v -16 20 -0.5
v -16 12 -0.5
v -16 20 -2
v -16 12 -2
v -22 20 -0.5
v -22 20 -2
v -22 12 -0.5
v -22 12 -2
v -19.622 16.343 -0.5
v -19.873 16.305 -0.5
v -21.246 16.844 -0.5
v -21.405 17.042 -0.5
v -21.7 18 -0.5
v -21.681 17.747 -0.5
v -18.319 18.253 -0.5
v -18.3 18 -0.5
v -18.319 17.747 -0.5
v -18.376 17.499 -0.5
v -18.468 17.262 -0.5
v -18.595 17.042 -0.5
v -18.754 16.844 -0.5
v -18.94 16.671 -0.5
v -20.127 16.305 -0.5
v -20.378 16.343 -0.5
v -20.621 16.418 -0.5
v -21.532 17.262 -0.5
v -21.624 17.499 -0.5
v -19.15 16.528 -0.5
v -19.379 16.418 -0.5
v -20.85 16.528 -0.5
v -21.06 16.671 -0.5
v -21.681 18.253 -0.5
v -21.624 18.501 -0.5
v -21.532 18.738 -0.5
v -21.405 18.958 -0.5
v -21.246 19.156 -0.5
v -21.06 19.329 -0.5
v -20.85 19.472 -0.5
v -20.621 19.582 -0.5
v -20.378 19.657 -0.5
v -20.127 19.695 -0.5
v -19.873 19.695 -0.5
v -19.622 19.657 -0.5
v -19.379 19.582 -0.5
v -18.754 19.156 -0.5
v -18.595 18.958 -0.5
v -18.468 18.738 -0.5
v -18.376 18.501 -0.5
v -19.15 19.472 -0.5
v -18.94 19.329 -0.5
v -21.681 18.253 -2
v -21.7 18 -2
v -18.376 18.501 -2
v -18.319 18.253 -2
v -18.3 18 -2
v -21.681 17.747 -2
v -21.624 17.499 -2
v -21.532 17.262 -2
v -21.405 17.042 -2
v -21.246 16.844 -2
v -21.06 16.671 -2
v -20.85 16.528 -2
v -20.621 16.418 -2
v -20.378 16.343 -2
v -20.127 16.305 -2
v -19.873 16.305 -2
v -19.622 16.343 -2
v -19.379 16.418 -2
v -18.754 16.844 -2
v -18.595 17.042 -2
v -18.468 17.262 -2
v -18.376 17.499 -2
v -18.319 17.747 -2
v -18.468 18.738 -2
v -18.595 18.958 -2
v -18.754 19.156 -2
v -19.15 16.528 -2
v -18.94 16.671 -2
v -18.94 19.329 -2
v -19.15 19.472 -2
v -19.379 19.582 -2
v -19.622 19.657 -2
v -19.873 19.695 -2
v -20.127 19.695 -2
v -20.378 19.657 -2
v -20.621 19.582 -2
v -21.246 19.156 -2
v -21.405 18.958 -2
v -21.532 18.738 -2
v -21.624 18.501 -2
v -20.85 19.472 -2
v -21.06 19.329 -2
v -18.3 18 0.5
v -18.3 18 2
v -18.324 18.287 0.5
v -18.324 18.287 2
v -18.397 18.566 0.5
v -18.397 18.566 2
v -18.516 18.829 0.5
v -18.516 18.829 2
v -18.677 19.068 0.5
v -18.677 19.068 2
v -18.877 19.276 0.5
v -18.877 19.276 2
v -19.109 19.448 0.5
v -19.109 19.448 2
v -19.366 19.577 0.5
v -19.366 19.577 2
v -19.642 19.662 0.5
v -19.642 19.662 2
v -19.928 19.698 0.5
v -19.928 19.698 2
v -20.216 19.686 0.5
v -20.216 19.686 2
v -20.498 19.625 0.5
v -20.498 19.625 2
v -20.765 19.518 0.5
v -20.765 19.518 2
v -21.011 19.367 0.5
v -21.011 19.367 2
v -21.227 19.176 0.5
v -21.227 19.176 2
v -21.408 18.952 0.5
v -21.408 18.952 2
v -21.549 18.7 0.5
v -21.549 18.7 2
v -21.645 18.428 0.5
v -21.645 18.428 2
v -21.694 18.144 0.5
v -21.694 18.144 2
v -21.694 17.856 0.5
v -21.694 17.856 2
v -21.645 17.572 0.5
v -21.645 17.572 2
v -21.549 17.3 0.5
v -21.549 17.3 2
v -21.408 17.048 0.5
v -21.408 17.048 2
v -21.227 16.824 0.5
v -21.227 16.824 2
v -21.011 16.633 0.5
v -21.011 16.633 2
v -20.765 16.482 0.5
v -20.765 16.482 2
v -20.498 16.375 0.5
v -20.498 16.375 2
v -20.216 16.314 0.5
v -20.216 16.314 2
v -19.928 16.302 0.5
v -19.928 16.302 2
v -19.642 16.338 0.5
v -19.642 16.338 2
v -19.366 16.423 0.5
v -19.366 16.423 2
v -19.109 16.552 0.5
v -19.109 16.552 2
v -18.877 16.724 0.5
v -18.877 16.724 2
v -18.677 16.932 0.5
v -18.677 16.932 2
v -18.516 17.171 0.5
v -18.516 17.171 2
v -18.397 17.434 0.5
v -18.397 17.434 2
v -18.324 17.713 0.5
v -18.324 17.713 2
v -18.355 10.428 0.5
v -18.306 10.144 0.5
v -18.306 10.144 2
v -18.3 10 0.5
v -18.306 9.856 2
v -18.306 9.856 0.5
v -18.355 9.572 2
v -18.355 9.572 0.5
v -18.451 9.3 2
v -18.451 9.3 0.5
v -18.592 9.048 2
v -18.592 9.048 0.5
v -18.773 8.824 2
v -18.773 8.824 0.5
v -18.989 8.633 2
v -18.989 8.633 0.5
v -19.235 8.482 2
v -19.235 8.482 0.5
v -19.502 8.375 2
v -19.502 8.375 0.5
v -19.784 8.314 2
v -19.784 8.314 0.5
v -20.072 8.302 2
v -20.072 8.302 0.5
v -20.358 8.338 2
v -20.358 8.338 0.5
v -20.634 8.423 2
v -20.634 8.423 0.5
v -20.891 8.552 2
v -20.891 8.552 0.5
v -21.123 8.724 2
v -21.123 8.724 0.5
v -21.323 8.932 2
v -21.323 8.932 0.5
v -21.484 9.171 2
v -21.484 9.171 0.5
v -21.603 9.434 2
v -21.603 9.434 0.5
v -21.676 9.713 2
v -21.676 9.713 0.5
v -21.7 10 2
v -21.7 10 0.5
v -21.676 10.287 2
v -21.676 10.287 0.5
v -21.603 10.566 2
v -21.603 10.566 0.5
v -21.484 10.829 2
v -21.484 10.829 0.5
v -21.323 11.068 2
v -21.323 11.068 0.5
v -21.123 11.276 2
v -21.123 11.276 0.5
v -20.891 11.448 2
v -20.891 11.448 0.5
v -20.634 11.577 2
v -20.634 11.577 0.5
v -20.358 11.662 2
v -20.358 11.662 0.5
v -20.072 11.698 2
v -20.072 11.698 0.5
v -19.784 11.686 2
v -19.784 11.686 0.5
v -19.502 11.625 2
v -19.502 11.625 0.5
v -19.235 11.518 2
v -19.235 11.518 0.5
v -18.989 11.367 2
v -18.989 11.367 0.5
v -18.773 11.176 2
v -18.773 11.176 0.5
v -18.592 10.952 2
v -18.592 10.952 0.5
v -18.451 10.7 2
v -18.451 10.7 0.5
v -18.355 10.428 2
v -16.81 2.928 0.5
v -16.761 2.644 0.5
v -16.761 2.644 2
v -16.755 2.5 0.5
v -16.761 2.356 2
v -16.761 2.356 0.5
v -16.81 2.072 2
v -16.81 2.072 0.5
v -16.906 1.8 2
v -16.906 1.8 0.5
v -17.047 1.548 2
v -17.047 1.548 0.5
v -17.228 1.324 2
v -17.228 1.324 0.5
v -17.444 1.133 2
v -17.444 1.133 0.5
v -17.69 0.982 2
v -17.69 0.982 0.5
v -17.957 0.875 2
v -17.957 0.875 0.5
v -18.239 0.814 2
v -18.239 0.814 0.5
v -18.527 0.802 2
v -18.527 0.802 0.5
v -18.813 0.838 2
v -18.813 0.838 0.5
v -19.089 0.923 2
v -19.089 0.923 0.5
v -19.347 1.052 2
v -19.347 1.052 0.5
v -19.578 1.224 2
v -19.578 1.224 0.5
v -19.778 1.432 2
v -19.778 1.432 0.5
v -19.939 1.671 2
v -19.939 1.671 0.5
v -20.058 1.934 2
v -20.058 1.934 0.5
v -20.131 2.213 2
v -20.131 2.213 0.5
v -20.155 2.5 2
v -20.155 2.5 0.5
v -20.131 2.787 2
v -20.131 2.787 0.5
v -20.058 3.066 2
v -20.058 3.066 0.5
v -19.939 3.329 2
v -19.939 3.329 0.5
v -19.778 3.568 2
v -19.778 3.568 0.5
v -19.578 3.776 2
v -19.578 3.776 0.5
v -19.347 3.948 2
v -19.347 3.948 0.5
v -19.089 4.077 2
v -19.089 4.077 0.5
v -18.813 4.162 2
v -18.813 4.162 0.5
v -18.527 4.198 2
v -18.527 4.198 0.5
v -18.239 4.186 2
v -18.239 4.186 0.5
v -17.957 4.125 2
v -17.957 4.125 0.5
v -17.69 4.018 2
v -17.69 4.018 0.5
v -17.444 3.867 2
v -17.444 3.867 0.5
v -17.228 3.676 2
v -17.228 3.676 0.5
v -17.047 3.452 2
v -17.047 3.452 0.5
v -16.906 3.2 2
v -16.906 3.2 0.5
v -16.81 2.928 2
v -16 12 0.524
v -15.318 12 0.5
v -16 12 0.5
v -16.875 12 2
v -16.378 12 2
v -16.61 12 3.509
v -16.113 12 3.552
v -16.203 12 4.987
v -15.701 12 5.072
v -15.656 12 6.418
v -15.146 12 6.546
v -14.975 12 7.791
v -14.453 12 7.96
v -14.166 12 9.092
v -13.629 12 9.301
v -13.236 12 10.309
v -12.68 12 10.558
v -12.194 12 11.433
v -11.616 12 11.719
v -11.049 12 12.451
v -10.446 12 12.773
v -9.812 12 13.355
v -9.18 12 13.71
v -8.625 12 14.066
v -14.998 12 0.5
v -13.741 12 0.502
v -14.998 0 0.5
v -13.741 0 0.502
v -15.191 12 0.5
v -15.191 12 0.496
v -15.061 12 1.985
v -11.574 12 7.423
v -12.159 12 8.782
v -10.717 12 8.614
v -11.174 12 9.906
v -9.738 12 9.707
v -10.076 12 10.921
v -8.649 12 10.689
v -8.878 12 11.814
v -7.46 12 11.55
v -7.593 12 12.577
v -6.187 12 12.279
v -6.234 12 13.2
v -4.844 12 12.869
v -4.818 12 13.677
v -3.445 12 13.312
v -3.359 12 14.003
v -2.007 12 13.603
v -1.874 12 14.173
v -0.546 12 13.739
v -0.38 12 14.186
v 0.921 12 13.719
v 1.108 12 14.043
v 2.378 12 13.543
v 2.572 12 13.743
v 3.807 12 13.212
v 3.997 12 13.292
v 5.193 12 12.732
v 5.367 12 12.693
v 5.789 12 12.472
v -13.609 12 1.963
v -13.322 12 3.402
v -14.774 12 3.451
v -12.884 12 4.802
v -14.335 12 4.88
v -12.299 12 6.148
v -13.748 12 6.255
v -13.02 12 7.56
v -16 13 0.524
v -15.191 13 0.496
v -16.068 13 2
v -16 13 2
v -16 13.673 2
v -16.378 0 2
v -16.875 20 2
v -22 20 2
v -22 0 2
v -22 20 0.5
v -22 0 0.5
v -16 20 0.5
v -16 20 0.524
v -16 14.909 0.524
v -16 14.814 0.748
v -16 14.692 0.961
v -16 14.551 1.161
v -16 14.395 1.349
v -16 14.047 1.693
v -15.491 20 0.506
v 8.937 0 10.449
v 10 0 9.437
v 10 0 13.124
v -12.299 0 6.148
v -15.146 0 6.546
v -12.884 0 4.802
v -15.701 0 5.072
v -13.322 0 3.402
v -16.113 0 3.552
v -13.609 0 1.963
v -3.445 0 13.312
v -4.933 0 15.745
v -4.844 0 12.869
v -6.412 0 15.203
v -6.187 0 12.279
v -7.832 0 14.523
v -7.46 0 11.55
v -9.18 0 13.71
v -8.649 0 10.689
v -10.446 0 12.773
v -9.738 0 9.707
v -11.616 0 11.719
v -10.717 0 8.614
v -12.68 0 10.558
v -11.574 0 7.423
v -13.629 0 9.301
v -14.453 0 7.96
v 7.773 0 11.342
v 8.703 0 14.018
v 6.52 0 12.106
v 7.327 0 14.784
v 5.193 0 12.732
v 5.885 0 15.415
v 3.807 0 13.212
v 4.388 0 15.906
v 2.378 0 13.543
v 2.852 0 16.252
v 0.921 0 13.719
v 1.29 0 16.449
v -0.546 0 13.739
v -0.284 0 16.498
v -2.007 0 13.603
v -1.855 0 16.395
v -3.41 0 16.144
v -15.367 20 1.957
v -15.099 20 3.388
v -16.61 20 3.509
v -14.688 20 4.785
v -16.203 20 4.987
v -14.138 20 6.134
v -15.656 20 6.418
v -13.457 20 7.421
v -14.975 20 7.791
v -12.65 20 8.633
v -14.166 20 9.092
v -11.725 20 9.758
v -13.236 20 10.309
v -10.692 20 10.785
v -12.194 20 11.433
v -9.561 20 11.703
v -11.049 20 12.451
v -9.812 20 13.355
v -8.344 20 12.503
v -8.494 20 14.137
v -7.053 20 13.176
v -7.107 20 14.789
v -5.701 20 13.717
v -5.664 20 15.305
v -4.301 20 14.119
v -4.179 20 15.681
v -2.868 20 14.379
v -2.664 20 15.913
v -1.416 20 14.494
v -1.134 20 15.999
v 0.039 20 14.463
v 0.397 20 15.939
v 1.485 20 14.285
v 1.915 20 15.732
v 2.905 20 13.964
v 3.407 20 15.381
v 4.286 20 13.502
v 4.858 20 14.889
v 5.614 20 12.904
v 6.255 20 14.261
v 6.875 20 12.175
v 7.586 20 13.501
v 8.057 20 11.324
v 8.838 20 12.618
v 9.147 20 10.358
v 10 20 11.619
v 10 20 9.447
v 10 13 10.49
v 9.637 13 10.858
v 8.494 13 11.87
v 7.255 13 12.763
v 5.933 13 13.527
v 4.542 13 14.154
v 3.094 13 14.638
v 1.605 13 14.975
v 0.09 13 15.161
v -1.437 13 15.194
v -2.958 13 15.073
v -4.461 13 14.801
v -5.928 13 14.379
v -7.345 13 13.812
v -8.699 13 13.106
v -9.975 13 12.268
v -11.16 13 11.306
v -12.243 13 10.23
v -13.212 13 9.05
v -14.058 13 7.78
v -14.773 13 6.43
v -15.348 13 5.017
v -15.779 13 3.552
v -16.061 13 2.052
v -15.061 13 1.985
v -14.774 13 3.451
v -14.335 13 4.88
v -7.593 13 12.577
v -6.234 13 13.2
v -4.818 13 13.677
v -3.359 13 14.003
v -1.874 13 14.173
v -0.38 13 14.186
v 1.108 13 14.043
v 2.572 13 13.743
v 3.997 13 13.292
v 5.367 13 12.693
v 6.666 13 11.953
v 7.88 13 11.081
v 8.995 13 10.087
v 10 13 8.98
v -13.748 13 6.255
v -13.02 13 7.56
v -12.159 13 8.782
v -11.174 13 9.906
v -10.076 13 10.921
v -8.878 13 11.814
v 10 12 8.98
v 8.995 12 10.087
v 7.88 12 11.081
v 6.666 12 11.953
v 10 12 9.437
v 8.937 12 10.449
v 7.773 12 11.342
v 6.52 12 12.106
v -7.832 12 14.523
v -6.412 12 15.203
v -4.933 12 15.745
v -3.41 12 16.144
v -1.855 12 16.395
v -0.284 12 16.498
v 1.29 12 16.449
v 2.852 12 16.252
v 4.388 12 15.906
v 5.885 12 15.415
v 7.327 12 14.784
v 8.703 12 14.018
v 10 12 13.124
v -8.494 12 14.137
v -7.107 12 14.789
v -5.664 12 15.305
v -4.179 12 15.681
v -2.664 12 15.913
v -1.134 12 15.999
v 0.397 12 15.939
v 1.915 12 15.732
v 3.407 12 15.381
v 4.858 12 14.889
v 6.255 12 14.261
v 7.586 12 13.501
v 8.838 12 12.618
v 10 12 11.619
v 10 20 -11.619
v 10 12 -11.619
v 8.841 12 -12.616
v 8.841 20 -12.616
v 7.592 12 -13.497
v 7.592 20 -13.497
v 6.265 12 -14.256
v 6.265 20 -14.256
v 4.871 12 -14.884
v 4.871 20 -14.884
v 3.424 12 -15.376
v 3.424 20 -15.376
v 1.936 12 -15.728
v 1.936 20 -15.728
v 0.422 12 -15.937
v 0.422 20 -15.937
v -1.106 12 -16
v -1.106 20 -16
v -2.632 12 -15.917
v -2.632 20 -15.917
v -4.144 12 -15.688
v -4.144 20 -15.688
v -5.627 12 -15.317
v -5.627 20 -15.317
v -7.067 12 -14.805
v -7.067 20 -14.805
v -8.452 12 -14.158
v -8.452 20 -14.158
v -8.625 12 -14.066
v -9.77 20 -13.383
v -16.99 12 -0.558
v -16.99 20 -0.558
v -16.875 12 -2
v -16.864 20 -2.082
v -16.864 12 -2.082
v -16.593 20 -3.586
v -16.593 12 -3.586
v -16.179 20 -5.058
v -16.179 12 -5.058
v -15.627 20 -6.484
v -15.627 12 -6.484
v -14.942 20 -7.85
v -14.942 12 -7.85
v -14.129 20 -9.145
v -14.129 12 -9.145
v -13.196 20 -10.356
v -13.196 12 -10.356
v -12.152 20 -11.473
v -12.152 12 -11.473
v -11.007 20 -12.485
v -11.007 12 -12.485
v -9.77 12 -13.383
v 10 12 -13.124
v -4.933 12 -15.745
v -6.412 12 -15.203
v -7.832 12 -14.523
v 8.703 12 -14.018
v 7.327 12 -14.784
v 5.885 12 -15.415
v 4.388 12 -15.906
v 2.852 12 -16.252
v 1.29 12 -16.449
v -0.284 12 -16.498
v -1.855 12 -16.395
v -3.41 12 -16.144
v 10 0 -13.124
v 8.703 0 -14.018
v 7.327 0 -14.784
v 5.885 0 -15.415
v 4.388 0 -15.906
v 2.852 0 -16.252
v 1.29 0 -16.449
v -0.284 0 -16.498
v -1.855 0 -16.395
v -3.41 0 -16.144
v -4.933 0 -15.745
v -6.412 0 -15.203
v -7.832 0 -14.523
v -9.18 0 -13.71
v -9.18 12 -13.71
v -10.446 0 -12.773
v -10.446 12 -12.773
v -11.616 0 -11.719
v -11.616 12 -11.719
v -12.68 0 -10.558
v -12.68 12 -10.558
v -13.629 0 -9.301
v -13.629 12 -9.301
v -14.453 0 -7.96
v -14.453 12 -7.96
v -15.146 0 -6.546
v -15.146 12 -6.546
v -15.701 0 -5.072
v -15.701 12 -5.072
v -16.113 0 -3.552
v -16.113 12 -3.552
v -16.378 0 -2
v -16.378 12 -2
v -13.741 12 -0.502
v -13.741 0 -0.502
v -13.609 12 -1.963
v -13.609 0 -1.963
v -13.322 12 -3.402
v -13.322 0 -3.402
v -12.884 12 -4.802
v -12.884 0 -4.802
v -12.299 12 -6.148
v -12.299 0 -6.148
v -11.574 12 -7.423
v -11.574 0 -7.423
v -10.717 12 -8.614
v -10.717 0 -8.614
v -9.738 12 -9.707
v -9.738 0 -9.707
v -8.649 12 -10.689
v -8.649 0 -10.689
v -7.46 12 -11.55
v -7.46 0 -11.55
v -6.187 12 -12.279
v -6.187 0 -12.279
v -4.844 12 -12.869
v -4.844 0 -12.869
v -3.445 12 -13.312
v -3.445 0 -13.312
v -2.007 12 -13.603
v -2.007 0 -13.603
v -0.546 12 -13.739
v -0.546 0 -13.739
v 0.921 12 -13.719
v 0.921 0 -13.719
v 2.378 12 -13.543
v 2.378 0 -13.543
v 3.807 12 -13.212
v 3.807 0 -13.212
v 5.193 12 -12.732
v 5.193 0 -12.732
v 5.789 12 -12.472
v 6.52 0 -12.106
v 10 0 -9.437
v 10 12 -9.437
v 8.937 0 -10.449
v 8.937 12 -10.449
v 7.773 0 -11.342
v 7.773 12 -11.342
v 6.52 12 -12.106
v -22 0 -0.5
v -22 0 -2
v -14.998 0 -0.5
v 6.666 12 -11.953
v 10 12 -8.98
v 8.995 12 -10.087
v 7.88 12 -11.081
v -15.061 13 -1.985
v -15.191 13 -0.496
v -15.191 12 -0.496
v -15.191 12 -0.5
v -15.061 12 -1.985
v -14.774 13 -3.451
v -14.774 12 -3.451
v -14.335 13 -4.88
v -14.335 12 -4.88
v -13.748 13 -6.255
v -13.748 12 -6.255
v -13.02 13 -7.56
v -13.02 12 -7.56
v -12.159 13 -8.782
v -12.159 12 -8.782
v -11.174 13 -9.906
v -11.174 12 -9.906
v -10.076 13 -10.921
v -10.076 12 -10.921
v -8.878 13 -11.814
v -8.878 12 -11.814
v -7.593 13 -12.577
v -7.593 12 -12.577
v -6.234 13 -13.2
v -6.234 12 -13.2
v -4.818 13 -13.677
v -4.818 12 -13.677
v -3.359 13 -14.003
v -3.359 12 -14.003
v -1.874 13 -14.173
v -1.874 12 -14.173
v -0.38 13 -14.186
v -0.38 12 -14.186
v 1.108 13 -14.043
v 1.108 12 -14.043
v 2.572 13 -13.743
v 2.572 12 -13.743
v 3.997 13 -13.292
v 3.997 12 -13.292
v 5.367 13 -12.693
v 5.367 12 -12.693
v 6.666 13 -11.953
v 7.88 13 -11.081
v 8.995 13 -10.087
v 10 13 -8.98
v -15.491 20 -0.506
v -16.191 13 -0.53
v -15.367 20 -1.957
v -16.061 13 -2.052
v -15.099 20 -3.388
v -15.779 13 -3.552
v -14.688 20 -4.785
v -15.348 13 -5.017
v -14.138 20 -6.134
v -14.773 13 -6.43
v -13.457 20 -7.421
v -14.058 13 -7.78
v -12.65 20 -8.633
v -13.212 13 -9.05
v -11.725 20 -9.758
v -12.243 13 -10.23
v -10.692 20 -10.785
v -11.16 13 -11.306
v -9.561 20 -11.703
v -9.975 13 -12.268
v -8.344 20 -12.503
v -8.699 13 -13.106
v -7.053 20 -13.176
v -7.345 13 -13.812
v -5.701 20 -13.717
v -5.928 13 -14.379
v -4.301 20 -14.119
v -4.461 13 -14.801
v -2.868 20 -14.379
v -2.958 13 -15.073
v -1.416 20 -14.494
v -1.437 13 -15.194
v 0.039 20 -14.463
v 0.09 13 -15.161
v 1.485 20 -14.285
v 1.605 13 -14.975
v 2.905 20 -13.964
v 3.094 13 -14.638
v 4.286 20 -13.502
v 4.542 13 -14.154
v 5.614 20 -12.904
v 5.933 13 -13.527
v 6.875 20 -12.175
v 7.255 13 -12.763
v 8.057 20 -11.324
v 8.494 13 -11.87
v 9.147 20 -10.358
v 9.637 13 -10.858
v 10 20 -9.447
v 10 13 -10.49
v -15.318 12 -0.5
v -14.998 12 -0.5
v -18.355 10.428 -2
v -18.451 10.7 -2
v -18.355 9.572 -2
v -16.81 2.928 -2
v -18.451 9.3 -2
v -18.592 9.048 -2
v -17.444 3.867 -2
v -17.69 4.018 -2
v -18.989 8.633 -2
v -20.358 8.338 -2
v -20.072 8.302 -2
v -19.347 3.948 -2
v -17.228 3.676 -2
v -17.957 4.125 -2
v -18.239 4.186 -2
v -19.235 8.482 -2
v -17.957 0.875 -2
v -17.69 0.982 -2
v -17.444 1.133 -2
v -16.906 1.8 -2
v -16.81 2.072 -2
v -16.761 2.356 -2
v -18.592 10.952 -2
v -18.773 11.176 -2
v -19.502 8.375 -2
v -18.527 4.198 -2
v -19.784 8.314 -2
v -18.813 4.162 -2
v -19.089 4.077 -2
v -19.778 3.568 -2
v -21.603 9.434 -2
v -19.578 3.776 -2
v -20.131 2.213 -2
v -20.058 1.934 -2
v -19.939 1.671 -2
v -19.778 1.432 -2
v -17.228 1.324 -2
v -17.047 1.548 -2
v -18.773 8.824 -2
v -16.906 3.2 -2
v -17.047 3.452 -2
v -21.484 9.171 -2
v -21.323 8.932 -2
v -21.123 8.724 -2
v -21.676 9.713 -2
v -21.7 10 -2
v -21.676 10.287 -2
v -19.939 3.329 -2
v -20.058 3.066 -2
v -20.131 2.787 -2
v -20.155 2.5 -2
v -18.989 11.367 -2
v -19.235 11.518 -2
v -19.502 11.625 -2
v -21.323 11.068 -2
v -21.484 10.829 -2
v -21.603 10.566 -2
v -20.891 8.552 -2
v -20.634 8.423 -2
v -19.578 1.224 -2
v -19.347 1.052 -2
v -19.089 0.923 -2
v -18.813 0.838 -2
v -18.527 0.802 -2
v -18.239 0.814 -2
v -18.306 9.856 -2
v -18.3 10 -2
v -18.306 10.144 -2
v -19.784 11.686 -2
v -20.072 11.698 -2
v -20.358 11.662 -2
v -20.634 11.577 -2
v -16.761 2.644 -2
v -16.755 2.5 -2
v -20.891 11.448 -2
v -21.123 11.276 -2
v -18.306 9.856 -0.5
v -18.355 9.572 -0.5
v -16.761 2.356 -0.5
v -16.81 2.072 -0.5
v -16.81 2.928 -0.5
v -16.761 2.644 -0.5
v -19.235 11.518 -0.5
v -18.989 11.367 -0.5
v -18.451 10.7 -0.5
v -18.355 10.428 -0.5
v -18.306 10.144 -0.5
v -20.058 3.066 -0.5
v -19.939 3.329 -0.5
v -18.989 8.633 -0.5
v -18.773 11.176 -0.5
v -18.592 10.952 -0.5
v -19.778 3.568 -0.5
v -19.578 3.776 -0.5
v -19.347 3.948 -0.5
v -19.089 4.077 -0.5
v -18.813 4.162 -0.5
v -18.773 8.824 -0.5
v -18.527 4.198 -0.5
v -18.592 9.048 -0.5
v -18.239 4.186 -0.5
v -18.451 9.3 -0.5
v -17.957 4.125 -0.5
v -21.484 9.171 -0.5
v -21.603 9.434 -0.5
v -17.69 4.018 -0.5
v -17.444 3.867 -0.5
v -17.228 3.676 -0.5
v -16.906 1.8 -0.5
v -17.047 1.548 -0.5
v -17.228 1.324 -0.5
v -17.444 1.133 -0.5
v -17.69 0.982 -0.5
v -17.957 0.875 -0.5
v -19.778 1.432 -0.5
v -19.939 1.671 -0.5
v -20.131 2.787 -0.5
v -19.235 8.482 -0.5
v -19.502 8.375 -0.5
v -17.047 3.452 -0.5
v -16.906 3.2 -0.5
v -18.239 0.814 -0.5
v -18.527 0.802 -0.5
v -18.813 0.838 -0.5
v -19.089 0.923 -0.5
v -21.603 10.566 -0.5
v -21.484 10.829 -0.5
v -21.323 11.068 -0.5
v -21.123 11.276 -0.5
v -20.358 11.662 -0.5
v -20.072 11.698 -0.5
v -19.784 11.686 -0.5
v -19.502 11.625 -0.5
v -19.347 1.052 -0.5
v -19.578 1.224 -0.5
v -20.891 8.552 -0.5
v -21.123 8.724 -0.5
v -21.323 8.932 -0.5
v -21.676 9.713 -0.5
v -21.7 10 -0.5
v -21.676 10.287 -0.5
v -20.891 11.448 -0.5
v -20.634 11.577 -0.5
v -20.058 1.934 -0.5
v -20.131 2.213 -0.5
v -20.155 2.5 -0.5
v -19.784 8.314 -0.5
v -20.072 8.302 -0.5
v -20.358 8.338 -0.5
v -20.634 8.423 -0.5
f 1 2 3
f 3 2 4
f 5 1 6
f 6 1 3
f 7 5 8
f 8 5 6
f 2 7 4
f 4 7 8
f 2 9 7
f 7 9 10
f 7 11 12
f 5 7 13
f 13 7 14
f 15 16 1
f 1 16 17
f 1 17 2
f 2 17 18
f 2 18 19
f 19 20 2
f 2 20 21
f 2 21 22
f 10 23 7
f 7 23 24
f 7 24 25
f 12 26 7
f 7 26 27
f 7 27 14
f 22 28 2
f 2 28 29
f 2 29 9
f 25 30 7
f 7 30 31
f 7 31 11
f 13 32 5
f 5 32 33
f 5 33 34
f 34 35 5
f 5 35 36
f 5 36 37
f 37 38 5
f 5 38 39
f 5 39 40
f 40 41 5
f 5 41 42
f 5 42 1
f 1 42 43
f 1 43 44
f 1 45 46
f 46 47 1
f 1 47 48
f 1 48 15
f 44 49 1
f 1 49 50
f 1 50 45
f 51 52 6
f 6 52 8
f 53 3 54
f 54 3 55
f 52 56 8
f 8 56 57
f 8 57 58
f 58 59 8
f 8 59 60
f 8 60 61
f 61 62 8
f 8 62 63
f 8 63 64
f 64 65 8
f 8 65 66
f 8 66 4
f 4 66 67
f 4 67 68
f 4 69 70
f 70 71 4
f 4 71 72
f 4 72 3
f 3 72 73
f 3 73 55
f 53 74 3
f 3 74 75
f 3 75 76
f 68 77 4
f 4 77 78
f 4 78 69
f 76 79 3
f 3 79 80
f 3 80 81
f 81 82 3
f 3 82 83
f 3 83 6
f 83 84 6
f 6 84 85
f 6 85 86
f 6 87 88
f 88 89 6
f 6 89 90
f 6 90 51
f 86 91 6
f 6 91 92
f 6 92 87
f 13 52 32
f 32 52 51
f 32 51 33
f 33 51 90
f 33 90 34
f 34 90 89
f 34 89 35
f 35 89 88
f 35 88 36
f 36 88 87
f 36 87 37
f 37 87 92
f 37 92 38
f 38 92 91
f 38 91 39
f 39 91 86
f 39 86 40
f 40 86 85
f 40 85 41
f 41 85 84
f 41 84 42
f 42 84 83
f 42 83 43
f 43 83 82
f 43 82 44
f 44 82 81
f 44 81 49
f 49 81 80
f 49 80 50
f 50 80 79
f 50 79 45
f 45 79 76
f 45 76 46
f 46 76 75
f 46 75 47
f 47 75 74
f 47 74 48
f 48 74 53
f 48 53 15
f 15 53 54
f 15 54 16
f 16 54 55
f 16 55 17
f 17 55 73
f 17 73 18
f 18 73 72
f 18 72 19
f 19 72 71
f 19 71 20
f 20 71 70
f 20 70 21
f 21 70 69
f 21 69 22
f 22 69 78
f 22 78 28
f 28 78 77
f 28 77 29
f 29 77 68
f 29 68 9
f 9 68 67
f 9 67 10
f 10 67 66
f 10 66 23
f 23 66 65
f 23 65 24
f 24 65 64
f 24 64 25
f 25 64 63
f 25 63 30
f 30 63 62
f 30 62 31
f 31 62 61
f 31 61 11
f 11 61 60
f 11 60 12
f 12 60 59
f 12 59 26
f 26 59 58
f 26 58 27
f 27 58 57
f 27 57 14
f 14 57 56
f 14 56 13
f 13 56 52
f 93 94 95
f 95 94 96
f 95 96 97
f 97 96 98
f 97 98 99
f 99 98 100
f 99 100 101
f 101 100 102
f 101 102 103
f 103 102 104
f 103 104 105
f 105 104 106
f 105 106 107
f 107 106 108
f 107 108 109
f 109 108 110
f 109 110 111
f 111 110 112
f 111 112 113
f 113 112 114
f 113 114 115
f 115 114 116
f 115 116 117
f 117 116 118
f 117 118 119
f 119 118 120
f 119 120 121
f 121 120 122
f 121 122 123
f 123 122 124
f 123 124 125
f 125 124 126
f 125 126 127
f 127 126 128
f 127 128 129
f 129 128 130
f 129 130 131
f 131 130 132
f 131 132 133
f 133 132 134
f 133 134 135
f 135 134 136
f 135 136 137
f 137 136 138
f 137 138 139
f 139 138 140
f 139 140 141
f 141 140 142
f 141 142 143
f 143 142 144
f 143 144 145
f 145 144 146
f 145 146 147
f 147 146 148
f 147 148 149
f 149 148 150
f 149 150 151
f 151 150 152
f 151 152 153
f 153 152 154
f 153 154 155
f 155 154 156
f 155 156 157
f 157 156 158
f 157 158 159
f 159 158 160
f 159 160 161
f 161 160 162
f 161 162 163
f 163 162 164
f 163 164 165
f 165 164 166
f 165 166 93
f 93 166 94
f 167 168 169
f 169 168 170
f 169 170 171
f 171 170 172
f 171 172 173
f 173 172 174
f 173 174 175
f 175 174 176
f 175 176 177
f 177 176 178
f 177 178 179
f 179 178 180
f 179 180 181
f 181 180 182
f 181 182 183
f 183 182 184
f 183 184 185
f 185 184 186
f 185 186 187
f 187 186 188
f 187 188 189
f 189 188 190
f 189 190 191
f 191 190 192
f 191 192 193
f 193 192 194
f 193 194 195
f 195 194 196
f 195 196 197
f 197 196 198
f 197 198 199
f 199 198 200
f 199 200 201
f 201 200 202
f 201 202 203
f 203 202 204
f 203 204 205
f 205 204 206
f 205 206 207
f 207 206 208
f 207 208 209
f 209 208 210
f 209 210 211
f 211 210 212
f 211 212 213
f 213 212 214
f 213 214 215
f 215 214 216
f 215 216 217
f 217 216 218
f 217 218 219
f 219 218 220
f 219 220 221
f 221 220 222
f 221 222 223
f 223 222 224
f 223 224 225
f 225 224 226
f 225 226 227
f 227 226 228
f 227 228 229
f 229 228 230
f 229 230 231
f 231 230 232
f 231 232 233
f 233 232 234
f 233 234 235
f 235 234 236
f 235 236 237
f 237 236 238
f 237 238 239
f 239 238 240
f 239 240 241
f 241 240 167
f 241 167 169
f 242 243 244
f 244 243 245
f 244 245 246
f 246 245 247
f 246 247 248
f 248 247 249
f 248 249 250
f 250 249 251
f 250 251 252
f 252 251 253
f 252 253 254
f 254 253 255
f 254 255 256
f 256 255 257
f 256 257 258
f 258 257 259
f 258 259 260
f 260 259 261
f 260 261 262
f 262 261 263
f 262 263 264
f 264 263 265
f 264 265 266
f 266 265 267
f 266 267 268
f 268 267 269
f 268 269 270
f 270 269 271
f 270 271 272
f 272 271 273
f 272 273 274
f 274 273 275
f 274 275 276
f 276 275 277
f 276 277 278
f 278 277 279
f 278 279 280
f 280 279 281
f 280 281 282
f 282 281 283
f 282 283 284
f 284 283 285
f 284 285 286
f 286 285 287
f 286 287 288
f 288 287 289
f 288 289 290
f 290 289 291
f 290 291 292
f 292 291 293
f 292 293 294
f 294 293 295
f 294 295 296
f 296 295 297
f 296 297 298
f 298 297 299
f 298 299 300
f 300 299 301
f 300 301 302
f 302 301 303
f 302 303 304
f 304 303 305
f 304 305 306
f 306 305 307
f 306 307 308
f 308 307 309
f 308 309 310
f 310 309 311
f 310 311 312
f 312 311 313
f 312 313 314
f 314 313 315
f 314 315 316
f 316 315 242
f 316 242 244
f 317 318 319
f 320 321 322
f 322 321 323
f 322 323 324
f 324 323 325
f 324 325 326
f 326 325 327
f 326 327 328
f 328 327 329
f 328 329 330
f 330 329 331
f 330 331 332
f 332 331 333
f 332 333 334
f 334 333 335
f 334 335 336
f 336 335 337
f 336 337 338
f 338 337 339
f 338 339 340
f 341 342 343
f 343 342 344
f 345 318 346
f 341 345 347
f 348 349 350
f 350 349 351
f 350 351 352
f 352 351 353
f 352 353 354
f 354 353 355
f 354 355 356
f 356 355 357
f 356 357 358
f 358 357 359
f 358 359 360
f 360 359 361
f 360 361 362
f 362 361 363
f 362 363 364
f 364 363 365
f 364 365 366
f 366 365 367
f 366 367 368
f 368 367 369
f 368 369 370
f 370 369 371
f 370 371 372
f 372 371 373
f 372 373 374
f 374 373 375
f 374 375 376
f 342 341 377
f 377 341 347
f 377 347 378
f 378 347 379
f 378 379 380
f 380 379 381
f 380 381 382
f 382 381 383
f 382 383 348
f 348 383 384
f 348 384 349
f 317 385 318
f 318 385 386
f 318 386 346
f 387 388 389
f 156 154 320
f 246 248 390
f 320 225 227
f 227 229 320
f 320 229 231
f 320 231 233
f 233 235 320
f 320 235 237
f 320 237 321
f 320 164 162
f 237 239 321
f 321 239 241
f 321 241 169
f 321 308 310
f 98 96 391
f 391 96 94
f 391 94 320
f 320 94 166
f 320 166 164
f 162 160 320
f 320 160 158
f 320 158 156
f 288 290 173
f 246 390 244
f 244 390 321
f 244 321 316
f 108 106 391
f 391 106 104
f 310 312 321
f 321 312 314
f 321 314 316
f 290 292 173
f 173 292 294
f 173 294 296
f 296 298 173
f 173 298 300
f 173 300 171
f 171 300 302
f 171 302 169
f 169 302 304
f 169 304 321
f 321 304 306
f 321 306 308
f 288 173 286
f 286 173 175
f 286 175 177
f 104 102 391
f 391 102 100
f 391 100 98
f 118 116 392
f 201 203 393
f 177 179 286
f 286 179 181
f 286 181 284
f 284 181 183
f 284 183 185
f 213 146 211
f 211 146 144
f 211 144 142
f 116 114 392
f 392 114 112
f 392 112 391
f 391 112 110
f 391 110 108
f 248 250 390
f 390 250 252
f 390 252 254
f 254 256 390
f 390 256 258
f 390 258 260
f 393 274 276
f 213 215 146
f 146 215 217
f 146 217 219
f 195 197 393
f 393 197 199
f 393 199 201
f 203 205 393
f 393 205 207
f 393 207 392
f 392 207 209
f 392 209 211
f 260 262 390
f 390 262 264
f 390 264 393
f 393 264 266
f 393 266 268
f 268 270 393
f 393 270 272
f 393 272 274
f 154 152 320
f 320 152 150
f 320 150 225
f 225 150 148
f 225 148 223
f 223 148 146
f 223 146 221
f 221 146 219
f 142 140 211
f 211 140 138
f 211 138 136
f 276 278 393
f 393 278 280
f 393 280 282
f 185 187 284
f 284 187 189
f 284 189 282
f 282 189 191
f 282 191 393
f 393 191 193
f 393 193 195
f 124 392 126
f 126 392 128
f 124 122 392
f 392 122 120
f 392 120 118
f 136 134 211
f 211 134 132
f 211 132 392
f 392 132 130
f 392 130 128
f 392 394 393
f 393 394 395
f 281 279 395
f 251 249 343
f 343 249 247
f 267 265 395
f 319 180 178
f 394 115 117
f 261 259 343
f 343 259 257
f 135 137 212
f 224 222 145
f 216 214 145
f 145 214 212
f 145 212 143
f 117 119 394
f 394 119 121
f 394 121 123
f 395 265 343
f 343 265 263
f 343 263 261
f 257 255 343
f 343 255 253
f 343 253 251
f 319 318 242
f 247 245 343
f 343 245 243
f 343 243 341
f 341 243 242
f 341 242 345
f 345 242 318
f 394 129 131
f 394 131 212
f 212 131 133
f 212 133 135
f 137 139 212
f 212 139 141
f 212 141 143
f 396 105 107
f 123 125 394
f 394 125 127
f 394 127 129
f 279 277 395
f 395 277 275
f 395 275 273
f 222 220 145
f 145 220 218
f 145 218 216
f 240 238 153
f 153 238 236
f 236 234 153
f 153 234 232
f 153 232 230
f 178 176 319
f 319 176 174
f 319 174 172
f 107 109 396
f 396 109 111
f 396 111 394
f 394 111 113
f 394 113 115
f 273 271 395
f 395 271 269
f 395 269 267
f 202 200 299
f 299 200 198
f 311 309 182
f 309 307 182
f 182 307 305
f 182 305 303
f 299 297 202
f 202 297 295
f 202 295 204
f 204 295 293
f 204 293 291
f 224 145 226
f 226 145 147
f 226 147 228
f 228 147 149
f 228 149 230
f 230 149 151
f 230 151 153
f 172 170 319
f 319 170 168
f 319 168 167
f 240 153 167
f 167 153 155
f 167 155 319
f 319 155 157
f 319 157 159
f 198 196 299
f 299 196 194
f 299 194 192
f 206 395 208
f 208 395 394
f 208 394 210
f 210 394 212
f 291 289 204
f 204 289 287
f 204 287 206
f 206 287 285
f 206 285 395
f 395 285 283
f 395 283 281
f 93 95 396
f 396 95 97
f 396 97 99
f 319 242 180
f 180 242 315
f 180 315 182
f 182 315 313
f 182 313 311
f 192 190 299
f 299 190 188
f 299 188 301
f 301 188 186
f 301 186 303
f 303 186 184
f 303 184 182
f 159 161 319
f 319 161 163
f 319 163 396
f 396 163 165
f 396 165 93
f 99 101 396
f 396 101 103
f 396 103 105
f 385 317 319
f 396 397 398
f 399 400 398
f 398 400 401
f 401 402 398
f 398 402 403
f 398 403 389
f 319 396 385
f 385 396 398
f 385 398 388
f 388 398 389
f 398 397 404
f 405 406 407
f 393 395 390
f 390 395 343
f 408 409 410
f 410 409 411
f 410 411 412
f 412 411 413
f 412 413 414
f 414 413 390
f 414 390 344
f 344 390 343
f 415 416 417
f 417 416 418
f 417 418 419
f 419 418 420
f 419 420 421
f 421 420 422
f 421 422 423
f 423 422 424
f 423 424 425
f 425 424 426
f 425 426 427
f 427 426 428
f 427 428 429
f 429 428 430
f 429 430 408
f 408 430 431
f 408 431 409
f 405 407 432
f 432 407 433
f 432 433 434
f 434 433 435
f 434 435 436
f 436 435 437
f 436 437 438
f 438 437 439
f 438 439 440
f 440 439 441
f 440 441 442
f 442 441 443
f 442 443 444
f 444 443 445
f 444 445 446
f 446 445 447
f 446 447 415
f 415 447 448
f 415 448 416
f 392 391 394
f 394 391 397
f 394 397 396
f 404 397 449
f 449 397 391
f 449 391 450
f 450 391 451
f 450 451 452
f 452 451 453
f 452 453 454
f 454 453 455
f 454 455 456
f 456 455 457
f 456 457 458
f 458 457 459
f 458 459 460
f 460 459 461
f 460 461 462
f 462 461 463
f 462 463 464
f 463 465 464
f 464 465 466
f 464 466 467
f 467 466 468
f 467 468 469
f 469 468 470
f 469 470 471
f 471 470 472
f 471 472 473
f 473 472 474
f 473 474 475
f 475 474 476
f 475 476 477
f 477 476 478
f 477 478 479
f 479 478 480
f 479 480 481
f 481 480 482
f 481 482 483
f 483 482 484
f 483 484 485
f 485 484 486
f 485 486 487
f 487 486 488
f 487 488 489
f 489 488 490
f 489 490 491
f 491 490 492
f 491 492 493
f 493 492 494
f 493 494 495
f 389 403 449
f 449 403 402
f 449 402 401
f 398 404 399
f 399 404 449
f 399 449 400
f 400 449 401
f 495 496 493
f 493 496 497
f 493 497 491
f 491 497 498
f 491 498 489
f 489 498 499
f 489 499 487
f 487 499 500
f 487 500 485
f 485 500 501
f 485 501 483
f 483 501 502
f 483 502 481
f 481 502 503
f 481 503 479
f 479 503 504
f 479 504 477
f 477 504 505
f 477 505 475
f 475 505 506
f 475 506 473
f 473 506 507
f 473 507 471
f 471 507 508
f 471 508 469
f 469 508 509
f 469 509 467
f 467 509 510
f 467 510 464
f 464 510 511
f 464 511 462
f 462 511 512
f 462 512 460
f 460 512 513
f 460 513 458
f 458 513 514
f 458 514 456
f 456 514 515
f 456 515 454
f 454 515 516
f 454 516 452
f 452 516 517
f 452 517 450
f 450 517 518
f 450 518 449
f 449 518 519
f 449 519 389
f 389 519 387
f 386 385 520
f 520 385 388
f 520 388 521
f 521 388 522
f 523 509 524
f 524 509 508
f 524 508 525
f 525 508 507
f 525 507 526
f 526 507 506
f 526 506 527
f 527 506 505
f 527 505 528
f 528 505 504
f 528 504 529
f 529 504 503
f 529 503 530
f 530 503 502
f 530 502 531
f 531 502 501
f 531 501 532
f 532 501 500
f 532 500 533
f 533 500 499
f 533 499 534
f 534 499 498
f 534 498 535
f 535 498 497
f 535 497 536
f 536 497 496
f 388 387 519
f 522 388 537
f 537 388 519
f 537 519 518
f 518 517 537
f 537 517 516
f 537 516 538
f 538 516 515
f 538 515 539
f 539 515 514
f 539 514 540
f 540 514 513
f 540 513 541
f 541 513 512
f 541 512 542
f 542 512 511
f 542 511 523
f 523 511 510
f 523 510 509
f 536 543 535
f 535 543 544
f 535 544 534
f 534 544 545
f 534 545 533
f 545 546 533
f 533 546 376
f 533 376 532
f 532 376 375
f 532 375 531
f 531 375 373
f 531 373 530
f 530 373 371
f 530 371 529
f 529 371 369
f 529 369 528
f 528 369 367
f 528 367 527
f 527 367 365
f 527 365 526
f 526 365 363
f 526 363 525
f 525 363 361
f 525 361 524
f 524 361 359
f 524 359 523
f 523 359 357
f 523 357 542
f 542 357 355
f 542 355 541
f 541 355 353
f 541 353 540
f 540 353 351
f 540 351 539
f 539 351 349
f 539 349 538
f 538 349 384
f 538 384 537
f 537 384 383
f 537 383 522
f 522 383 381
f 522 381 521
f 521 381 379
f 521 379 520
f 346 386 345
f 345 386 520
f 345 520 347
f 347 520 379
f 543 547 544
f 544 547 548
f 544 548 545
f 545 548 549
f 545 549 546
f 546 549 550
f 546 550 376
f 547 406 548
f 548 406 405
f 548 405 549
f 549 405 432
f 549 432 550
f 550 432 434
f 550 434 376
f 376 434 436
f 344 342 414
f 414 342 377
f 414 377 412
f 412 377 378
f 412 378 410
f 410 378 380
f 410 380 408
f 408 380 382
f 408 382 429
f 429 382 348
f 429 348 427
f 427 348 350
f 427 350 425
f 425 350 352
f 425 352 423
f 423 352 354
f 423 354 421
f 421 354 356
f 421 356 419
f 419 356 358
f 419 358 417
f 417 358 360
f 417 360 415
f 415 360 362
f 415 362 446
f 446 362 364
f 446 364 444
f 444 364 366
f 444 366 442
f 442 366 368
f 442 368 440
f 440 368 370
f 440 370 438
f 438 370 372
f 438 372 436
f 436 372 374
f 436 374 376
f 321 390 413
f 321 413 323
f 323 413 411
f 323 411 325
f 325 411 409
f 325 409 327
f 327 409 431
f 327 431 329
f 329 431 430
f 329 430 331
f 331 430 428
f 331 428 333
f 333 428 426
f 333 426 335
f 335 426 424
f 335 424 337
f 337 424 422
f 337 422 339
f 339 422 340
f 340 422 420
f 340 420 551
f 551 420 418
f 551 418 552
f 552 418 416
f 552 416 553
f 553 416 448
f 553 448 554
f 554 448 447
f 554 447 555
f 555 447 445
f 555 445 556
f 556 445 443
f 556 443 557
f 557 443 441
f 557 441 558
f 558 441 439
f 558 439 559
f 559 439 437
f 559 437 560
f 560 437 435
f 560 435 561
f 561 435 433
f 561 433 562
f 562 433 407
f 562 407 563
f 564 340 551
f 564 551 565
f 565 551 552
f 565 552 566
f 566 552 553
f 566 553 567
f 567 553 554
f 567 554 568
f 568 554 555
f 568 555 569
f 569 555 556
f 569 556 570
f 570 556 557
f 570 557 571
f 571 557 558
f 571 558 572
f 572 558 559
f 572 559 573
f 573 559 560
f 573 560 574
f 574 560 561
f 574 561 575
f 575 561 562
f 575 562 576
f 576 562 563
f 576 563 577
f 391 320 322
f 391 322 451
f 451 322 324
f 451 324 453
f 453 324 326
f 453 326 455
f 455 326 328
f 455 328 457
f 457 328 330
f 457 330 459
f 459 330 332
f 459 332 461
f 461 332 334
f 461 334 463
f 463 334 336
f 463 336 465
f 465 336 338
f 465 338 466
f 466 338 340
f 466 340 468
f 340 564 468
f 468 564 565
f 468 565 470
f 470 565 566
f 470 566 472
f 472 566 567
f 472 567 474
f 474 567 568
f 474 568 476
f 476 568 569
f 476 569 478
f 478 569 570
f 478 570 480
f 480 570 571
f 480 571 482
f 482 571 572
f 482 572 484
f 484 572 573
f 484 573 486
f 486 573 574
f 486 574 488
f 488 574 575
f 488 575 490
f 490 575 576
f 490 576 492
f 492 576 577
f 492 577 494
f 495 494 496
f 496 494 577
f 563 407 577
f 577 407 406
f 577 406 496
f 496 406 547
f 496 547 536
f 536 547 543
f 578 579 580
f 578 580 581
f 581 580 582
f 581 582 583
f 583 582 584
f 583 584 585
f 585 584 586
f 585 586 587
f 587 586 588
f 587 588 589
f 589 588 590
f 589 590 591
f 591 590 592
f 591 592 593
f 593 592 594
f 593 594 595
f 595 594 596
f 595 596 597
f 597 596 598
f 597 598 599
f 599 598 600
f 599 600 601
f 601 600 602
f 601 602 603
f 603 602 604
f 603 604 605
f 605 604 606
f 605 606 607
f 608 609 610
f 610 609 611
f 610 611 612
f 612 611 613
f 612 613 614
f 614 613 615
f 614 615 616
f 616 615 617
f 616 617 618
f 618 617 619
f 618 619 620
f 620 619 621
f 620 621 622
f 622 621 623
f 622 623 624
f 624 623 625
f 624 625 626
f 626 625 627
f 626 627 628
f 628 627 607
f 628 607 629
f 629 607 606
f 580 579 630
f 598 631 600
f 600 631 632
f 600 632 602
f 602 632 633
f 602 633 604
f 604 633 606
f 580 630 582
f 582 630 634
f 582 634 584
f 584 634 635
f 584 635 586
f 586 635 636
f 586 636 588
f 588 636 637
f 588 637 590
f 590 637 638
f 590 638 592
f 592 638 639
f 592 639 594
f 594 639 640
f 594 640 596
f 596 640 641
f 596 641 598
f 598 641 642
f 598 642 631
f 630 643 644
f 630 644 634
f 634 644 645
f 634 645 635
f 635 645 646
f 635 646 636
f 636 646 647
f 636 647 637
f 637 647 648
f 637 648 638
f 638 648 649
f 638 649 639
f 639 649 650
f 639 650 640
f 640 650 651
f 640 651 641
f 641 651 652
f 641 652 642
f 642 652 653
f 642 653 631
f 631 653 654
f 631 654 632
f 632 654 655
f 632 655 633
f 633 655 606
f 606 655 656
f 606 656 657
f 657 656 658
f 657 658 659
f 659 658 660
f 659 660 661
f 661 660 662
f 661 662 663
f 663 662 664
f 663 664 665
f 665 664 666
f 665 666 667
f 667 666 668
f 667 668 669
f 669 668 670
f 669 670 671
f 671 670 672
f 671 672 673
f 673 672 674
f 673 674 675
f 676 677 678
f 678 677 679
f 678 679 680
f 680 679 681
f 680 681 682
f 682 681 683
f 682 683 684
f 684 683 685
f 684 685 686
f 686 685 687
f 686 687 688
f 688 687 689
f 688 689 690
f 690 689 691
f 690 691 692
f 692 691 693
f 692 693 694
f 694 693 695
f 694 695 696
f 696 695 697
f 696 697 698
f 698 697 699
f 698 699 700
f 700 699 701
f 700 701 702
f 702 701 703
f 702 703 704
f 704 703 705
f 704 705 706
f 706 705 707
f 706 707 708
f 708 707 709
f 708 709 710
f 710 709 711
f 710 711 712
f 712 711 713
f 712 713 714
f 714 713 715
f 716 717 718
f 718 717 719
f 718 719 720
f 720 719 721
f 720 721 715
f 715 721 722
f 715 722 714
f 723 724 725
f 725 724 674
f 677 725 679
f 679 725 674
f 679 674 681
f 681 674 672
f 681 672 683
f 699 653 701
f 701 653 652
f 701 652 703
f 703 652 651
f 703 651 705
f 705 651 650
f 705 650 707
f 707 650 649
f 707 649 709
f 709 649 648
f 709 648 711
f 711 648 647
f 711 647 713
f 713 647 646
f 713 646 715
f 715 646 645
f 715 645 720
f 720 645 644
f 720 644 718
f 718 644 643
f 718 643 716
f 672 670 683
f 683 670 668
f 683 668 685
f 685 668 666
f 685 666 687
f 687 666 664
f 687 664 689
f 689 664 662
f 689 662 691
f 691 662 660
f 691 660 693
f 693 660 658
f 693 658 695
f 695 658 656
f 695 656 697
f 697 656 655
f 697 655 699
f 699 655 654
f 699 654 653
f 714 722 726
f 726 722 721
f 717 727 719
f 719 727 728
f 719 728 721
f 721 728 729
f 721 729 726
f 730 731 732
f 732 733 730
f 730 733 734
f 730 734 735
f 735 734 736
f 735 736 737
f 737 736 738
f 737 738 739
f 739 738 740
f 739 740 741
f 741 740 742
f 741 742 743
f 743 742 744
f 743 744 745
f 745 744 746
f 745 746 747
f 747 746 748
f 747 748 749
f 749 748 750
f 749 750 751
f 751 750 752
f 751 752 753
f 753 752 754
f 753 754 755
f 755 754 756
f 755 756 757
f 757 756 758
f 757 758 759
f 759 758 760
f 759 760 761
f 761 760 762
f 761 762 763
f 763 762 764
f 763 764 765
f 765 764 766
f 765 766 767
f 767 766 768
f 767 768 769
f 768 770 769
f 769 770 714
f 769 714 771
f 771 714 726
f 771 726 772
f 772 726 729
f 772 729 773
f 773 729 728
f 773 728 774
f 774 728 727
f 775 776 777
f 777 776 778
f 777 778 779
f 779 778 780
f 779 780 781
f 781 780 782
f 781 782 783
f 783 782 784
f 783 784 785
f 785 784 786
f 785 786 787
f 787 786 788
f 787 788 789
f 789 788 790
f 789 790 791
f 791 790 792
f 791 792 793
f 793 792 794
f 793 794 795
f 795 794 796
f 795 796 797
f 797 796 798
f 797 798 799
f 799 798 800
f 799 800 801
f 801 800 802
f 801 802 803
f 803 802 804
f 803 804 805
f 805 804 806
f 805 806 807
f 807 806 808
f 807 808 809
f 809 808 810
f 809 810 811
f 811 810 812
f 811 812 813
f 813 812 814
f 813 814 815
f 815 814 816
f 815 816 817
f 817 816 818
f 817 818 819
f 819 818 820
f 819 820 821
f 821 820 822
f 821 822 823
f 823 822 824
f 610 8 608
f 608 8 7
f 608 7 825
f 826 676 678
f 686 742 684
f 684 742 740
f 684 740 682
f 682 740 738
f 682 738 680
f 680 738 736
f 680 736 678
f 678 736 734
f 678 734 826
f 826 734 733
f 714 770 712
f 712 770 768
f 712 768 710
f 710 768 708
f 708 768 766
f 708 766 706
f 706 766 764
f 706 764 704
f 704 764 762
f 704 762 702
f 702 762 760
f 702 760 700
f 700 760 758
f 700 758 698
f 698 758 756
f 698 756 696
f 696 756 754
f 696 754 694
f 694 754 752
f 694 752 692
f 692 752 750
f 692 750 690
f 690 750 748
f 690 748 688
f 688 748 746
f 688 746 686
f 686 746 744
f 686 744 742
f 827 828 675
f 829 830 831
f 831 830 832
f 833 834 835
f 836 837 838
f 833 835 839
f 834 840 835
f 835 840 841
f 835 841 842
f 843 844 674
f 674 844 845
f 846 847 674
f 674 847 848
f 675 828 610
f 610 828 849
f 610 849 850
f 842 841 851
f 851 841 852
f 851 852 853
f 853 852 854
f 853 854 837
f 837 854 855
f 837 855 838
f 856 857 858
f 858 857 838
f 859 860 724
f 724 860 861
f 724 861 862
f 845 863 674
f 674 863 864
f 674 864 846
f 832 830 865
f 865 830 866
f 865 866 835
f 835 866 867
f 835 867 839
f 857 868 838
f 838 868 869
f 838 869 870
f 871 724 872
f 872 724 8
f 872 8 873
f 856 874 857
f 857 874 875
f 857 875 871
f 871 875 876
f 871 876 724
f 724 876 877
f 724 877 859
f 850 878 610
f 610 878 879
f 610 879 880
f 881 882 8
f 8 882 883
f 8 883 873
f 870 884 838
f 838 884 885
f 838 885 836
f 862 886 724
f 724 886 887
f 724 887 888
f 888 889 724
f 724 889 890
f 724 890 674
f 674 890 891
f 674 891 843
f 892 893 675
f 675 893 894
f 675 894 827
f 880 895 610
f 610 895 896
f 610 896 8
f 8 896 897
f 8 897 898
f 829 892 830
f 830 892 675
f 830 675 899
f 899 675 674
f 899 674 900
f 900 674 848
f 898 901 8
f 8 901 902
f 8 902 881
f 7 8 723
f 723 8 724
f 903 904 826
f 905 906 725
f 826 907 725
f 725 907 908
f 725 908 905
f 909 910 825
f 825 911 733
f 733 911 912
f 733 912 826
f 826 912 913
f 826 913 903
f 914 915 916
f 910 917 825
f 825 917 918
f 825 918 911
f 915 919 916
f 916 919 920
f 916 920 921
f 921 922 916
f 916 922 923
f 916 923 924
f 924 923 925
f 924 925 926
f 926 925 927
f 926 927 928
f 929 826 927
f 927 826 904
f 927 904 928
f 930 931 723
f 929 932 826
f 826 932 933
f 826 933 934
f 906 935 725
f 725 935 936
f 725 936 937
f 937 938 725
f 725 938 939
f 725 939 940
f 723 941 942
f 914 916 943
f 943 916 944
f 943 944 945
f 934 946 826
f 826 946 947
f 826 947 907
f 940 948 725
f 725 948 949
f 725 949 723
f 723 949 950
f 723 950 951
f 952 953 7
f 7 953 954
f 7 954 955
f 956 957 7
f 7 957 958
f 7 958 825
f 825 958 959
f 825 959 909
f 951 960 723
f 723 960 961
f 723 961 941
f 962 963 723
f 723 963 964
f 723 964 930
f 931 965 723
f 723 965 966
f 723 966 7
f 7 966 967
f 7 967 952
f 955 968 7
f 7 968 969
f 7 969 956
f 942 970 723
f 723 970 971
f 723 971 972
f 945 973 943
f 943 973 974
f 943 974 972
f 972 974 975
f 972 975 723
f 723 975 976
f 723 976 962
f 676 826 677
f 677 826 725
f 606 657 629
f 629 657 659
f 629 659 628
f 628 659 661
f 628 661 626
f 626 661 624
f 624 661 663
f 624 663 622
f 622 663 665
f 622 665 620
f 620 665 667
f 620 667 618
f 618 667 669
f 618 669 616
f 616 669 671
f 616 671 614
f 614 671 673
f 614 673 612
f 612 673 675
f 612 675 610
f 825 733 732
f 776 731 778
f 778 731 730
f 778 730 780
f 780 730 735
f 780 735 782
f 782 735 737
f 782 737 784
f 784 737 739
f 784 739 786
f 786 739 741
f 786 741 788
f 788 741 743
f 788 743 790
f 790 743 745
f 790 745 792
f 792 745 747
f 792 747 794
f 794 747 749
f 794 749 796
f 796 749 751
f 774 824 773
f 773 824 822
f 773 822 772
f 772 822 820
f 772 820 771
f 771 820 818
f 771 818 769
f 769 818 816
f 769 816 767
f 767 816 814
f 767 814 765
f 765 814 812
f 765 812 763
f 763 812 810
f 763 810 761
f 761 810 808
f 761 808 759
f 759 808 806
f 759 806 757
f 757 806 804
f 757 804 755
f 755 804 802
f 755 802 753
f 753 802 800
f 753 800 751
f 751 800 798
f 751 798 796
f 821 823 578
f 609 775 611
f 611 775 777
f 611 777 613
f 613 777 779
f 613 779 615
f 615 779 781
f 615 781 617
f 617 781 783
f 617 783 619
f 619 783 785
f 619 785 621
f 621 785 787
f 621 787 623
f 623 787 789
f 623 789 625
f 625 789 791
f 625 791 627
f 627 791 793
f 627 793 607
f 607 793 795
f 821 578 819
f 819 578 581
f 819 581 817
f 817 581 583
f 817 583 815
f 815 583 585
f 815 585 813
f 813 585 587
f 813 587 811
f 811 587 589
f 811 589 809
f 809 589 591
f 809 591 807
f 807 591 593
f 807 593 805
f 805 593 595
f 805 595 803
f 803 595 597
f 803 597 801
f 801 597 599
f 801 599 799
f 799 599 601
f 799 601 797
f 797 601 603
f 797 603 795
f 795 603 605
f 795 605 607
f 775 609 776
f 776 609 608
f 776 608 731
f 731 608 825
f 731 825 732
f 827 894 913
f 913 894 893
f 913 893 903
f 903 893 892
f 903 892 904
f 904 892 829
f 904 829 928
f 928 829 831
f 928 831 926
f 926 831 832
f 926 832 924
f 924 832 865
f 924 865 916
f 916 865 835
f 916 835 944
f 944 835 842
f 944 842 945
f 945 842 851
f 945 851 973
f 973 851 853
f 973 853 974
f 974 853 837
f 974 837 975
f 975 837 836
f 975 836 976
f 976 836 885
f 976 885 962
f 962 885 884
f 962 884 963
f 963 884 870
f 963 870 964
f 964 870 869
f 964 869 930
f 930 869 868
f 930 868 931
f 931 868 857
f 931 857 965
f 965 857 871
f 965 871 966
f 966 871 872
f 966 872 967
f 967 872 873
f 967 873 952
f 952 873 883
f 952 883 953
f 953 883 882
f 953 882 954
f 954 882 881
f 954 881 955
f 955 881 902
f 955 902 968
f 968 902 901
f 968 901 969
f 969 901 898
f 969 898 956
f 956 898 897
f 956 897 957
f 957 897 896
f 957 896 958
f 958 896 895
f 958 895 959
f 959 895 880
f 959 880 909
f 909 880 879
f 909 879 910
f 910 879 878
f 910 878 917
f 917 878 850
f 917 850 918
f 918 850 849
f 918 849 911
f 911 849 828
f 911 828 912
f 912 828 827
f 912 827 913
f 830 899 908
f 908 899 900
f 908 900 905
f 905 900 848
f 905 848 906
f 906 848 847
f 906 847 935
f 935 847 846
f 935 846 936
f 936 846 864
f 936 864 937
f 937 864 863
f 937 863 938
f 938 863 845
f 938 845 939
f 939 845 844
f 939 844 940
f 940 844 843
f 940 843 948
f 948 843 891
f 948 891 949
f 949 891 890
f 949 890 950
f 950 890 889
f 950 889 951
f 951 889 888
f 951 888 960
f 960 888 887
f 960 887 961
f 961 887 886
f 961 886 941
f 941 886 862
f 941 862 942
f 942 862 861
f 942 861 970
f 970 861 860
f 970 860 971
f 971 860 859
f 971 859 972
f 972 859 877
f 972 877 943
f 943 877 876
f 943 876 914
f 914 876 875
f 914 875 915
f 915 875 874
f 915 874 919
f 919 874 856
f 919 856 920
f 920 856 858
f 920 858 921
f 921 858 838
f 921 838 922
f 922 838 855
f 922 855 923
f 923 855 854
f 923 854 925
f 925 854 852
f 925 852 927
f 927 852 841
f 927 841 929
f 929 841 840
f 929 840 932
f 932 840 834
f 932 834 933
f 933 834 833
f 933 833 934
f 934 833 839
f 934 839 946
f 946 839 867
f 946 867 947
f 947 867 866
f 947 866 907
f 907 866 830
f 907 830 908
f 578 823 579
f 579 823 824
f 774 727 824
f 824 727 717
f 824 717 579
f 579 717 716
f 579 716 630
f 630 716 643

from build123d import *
from build123d.topology import SkipClean

# Parameters (mm, degrees)
BOSS_EXTRUDE1_DEPTH      = 12
REVOLVE1_ANGLE           = 268
REVOLVE1_OTHER_WAY_ANGLE = 88
CUT_EXTRUDE1_DEPTH       = 36.01785259
CUT_EXTRUDE1_DEPTH_BACK  = 36.01785259
SKETCH4_R                = 1.7
SKETCH5_W                = 6
SKETCH5_H                = 8
SKETCH5_R                = 1.7
BOSS_EXTRUDE3_DEPTH      = 1.5
SKETCH6_W                = 6
SKETCH6_H                = 8
SKETCH6_R                = 1.7
BOSS_EXTRUDE6_DEPTH      = 1.5
SKETCH7_W                = 10.400805134
SKETCH7_H                = 29.241648581
CUT_EXTRUDE2_DEPTH       = 35.003676272


with BuildPart() as part:
    # Sketch1 → Boss-Extrude1 (new body)
    with BuildSketch(Plane(origin=(0, 0, 0), x_dir=(1, 0, 0), z_dir=(0, 1, 0))):
        with BuildLine():
            Line((-13.740839561, 0.501824818), (-14.997715427, 0.5))
            Line((-14.997715427, 0.5), (-22, 0.5))
            Line((-22, 0.5), (-22, 2))
            Line((-22, 2), (-16.378339354, 2))
            ThreePointArc((-16.378339354, 2), (-13.76213031, 9.10240459), (-8.25, 14.289419162))
            ThreePointArc((-8.25, 14.289419162), (16.5, 0), (-8.25, -14.289419162))
            ThreePointArc((-8.25, -14.289419162), (-13.76213031, -9.10240459), (-16.378339354, -2))
            Line((-16.378339354, -2), (-22, -2))
            Line((-22, -2), (-22, -0.5))
            Line((-22, -0.5), (-14.997715427, -0.5))
            Line((-14.997715427, -0.5), (-13.740839561, -0.501824818))
            ThreePointArc((-13.740839561, -0.501824818), (-11.780388739, -7.09118757), (-6.875, -11.907849302))
            ThreePointArc((-6.875, -11.907849302), (13.75, 0), (-6.875, 11.907849302))
            ThreePointArc((-6.875, 11.907849302), (-11.780388739, 7.09118757), (-13.740839561, 0.501824818))
        make_face()
    extrude(amount=BOSS_EXTRUDE1_DEPTH)

    # Sketch3 → Revolve1 (revolve)
    with BuildSketch(Plane(origin=(-1, 0, 0), x_dir=(0, 0, -1), z_dir=(1, 0, 0))):
        Polygon((-16, 12), (-16, 20), (-14.5, 20), (-15.2, 13), (-14.2, 13), (-14.2, 12), (-15, 12), align=None)
    revolve(axis=Axis((-1, 12, 0), (0, 1, 0)), revolution_arc=REVOLVE1_ANGLE)

    # Sketch3 → Revolve1 other way (revolve)
    with SkipClean():  # the faces are left unmerged after this step: merging them gives an invalid solid
        with BuildSketch(Plane(origin=(-1, 0, 0), x_dir=(0, 0, -1), z_dir=(1, 0, 0))):
            Polygon((-16, 12), (-16, 20), (-14.5, 20), (-15.2, 13), (-14.2, 13), (-14.2, 12), (-15, 12), align=None)
        revolve(axis=Axis((-1, 12, 0), (0, -1, 0)), revolution_arc=REVOLVE1_OTHER_WAY_ANGLE)

    # Sketch4 → Cut-Extrude1 (cut, two sides: drawn at the far end of the back side and taken through both)
    with SkipClean():  # the faces are left unmerged after this step: merging them gives an invalid solid
        with BuildSketch(Plane(origin=(0, 0, -2), x_dir=(-1, 0, 0), z_dir=(0, 0, -1)).offset(-CUT_EXTRUDE1_DEPTH_BACK)):
            with Locations((20, 10)):
                Circle(SKETCH4_R)
            with Locations((18.455192267, 2.5)):
                Circle(SKETCH4_R)
        extrude(amount=CUT_EXTRUDE1_DEPTH + CUT_EXTRUDE1_DEPTH_BACK, mode=Mode.SUBTRACT)

    # Sketch5 → Boss-Extrude3 (add)
    with BuildSketch(Plane.XY.offset(2)):
        with Locations((-19, 16)):
            Rectangle(SKETCH5_W, SKETCH5_H)
        with Locations((-20, 18)):
            Circle(SKETCH5_R, mode=Mode.SUBTRACT)
    extrude(amount=-BOSS_EXTRUDE3_DEPTH)

    # Sketch7 → Cut-Extrude2 (cut, through all)
    with BuildSketch(Plane.XZ):
        with Locations((15.2003418, 0.918688158)):
            Rectangle(SKETCH7_W, SKETCH7_H)
    extrude(amount=-CUT_EXTRUDE2_DEPTH, mode=Mode.SUBTRACT)


with BuildPart() as body_2:
    # Sketch6 → Boss-Extrude6 (new body)
    with BuildSketch(Plane(origin=(0, 0, -2), x_dir=(-1, 0, 0), z_dir=(0, 0, -1))):
        with Locations((19, 16)):
            Rectangle(SKETCH6_W, SKETCH6_H)
        with Locations((20, 18)):
            Circle(SKETCH6_R, mode=Mode.SUBTRACT)
    extrude(amount=-BOSS_EXTRUDE6_DEPTH)


with BuildPart() as cut_extrude2_piece_1:
    # of the separate pieces the step leaves, piece 1, a body of its own (cut_extrude2_pieces)
    add(part.part.solids().sort_by_distance((-16.378339354, 0, 2))[0])


with BuildPart() as cut_extrude2_piece_2:
    # of the separate pieces the step leaves, piece 2, a body of its own (cut_extrude2_pieces)
    add(part.part.solids().sort_by_distance((-16.990253232, 20, -0.558391947))[0])


solid = Compound([body_2.part, cut_extrude2_piece_1.part, cut_extrude2_piece_2.part])
